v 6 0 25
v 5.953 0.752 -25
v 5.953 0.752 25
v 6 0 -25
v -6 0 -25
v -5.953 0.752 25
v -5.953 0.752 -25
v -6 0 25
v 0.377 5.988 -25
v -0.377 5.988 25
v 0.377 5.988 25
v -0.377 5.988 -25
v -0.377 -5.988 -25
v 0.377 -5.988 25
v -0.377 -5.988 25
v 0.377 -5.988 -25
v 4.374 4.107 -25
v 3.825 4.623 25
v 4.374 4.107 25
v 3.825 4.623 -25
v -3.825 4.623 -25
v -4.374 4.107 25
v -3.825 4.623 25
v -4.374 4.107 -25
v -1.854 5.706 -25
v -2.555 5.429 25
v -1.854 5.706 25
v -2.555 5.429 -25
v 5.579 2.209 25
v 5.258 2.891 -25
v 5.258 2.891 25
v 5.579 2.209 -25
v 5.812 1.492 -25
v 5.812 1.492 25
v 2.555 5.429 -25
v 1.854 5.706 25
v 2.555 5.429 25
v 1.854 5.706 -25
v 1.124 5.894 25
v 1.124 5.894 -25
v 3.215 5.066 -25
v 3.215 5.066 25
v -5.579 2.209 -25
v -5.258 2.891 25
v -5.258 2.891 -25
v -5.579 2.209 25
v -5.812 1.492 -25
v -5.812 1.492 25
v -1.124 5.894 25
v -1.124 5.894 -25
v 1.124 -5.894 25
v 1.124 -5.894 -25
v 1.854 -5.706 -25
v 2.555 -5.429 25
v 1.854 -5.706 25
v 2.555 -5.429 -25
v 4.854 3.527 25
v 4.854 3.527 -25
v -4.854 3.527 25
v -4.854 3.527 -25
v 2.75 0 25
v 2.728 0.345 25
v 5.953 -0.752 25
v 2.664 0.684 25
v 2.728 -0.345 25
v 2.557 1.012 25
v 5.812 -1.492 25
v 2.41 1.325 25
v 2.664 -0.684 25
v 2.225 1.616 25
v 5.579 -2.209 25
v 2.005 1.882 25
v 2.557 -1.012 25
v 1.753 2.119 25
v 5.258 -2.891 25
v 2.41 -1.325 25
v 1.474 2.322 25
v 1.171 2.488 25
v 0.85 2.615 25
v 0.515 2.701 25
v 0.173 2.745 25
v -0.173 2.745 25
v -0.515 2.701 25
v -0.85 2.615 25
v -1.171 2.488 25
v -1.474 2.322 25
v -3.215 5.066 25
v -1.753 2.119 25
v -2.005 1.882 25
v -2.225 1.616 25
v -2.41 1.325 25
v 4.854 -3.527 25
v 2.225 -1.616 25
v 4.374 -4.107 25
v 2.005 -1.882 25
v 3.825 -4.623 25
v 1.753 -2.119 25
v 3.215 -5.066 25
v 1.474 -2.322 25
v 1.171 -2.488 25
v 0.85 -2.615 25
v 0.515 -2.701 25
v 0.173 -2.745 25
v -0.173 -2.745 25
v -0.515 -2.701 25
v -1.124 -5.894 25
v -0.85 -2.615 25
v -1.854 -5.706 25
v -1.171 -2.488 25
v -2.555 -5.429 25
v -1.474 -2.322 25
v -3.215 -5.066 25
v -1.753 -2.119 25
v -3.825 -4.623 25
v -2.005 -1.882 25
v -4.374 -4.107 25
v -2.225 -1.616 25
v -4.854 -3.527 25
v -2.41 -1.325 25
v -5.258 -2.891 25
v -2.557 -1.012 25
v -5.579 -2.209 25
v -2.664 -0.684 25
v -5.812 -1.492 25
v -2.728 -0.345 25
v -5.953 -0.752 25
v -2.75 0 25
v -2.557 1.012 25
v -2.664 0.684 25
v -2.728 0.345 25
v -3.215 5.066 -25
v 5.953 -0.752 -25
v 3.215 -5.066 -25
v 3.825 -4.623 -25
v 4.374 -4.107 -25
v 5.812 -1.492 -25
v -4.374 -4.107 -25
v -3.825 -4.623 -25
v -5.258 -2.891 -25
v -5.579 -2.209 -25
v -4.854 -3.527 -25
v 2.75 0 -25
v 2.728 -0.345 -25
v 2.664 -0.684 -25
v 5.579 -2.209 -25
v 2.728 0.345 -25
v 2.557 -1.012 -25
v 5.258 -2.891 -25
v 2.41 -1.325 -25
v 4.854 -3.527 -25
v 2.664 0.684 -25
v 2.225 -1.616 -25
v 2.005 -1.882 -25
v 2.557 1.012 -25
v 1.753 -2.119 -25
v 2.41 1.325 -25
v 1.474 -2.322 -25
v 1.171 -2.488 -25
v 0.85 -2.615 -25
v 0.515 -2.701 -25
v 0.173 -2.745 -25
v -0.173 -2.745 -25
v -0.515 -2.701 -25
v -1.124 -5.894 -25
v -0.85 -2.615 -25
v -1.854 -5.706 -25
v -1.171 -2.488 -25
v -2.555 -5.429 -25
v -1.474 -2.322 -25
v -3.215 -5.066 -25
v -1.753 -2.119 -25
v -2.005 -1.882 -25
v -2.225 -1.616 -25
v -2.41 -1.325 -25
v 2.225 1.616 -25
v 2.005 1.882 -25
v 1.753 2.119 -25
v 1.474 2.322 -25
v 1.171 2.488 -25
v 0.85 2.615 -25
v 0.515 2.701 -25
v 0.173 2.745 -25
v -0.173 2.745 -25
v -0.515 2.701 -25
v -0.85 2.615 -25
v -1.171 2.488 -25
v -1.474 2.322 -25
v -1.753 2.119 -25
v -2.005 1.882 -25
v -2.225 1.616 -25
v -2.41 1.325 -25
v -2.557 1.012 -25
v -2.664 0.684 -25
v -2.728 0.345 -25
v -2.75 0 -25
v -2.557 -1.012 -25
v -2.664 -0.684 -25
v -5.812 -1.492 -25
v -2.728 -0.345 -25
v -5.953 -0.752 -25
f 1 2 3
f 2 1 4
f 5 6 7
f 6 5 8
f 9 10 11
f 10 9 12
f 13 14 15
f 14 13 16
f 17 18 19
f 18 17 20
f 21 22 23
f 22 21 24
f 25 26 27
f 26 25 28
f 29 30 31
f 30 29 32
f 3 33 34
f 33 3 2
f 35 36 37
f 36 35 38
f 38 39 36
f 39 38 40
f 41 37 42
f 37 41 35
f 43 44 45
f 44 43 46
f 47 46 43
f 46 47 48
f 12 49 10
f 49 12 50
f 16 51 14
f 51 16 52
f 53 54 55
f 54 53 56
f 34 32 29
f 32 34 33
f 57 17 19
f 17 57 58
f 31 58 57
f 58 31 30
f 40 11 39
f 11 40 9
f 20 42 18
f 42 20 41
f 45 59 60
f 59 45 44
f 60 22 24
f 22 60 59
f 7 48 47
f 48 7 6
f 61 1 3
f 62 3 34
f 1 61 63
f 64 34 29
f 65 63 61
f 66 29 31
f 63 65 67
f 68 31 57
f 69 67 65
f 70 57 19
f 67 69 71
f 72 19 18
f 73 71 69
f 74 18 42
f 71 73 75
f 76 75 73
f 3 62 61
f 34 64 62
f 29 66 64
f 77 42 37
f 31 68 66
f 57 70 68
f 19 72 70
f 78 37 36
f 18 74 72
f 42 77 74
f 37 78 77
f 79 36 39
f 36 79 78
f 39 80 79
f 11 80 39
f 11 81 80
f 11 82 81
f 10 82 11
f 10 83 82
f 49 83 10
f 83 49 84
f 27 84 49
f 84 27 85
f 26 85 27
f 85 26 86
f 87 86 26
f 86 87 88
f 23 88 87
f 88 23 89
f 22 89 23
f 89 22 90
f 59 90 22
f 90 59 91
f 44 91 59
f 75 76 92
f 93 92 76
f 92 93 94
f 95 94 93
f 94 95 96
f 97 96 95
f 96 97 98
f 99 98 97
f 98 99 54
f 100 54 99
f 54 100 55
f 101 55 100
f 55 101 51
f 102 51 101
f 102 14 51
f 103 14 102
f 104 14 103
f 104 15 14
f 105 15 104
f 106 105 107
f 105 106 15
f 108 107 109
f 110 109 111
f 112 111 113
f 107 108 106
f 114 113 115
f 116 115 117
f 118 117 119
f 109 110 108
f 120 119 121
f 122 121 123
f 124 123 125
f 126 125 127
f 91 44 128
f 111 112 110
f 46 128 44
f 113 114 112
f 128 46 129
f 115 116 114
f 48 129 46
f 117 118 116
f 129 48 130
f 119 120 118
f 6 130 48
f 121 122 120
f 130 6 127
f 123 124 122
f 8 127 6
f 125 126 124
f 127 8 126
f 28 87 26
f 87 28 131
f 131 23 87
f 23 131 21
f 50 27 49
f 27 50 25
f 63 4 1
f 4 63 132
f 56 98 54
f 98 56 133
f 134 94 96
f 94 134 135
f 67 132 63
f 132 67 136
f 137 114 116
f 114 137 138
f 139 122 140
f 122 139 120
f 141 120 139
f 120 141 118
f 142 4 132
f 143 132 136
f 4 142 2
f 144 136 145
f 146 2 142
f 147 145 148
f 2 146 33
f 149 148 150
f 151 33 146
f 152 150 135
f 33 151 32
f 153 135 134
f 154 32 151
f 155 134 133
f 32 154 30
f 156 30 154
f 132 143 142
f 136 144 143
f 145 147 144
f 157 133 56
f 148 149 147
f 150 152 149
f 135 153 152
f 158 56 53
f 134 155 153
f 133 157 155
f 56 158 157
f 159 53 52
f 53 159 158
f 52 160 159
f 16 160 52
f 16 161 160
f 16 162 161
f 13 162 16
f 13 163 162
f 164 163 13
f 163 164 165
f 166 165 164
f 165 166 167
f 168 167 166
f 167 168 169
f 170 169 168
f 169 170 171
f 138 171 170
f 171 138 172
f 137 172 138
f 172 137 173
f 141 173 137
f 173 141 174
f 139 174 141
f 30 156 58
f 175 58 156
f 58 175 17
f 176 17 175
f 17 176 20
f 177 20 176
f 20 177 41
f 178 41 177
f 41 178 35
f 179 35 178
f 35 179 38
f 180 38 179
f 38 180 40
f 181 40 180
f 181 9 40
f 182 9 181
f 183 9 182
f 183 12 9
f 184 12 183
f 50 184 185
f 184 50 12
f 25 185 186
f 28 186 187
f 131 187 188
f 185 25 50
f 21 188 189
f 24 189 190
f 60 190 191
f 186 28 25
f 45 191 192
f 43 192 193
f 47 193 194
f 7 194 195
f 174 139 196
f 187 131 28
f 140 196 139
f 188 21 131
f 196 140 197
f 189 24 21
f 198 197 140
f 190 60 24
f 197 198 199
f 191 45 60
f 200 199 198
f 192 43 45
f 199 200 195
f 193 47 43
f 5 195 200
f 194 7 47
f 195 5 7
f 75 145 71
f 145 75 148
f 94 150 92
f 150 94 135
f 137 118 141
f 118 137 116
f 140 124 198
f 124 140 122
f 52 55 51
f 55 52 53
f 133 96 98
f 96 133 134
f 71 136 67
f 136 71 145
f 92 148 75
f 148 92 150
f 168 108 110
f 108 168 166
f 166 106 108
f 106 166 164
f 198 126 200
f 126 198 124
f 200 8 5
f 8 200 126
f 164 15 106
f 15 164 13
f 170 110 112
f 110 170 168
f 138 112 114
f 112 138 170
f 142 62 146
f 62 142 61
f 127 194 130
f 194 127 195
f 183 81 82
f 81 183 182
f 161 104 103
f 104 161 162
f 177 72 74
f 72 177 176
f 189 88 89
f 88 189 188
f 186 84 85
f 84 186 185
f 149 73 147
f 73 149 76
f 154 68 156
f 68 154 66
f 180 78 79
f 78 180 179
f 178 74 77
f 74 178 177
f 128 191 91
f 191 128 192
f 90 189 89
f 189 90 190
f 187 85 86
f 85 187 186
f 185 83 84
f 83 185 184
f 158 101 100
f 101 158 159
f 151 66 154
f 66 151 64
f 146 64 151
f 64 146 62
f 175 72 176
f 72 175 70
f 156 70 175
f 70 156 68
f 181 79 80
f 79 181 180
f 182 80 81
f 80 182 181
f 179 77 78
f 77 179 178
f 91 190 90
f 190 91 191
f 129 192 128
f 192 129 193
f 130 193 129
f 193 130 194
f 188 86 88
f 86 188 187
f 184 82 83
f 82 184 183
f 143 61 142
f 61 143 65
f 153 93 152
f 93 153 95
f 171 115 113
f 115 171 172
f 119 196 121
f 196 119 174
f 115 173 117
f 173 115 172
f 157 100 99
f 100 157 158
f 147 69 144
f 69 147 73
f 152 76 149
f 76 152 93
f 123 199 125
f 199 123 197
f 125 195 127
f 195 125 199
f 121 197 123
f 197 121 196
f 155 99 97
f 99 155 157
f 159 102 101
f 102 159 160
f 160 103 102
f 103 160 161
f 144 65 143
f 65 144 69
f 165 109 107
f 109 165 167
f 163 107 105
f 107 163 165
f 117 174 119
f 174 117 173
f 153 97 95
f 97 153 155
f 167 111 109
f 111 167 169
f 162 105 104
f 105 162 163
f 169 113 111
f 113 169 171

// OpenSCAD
$fn = 50;


difference() {
	union() {
		translate(v = [0, 0, -25.0000000000]) {
			cylinder(h = 50, r = 6.0000000000);
		}
	}
	union() {
		translate(v = [0, 0, -100.0000000000]) {
			cylinder(h = 200, r = 2.7500000000);
		}
	}
}
